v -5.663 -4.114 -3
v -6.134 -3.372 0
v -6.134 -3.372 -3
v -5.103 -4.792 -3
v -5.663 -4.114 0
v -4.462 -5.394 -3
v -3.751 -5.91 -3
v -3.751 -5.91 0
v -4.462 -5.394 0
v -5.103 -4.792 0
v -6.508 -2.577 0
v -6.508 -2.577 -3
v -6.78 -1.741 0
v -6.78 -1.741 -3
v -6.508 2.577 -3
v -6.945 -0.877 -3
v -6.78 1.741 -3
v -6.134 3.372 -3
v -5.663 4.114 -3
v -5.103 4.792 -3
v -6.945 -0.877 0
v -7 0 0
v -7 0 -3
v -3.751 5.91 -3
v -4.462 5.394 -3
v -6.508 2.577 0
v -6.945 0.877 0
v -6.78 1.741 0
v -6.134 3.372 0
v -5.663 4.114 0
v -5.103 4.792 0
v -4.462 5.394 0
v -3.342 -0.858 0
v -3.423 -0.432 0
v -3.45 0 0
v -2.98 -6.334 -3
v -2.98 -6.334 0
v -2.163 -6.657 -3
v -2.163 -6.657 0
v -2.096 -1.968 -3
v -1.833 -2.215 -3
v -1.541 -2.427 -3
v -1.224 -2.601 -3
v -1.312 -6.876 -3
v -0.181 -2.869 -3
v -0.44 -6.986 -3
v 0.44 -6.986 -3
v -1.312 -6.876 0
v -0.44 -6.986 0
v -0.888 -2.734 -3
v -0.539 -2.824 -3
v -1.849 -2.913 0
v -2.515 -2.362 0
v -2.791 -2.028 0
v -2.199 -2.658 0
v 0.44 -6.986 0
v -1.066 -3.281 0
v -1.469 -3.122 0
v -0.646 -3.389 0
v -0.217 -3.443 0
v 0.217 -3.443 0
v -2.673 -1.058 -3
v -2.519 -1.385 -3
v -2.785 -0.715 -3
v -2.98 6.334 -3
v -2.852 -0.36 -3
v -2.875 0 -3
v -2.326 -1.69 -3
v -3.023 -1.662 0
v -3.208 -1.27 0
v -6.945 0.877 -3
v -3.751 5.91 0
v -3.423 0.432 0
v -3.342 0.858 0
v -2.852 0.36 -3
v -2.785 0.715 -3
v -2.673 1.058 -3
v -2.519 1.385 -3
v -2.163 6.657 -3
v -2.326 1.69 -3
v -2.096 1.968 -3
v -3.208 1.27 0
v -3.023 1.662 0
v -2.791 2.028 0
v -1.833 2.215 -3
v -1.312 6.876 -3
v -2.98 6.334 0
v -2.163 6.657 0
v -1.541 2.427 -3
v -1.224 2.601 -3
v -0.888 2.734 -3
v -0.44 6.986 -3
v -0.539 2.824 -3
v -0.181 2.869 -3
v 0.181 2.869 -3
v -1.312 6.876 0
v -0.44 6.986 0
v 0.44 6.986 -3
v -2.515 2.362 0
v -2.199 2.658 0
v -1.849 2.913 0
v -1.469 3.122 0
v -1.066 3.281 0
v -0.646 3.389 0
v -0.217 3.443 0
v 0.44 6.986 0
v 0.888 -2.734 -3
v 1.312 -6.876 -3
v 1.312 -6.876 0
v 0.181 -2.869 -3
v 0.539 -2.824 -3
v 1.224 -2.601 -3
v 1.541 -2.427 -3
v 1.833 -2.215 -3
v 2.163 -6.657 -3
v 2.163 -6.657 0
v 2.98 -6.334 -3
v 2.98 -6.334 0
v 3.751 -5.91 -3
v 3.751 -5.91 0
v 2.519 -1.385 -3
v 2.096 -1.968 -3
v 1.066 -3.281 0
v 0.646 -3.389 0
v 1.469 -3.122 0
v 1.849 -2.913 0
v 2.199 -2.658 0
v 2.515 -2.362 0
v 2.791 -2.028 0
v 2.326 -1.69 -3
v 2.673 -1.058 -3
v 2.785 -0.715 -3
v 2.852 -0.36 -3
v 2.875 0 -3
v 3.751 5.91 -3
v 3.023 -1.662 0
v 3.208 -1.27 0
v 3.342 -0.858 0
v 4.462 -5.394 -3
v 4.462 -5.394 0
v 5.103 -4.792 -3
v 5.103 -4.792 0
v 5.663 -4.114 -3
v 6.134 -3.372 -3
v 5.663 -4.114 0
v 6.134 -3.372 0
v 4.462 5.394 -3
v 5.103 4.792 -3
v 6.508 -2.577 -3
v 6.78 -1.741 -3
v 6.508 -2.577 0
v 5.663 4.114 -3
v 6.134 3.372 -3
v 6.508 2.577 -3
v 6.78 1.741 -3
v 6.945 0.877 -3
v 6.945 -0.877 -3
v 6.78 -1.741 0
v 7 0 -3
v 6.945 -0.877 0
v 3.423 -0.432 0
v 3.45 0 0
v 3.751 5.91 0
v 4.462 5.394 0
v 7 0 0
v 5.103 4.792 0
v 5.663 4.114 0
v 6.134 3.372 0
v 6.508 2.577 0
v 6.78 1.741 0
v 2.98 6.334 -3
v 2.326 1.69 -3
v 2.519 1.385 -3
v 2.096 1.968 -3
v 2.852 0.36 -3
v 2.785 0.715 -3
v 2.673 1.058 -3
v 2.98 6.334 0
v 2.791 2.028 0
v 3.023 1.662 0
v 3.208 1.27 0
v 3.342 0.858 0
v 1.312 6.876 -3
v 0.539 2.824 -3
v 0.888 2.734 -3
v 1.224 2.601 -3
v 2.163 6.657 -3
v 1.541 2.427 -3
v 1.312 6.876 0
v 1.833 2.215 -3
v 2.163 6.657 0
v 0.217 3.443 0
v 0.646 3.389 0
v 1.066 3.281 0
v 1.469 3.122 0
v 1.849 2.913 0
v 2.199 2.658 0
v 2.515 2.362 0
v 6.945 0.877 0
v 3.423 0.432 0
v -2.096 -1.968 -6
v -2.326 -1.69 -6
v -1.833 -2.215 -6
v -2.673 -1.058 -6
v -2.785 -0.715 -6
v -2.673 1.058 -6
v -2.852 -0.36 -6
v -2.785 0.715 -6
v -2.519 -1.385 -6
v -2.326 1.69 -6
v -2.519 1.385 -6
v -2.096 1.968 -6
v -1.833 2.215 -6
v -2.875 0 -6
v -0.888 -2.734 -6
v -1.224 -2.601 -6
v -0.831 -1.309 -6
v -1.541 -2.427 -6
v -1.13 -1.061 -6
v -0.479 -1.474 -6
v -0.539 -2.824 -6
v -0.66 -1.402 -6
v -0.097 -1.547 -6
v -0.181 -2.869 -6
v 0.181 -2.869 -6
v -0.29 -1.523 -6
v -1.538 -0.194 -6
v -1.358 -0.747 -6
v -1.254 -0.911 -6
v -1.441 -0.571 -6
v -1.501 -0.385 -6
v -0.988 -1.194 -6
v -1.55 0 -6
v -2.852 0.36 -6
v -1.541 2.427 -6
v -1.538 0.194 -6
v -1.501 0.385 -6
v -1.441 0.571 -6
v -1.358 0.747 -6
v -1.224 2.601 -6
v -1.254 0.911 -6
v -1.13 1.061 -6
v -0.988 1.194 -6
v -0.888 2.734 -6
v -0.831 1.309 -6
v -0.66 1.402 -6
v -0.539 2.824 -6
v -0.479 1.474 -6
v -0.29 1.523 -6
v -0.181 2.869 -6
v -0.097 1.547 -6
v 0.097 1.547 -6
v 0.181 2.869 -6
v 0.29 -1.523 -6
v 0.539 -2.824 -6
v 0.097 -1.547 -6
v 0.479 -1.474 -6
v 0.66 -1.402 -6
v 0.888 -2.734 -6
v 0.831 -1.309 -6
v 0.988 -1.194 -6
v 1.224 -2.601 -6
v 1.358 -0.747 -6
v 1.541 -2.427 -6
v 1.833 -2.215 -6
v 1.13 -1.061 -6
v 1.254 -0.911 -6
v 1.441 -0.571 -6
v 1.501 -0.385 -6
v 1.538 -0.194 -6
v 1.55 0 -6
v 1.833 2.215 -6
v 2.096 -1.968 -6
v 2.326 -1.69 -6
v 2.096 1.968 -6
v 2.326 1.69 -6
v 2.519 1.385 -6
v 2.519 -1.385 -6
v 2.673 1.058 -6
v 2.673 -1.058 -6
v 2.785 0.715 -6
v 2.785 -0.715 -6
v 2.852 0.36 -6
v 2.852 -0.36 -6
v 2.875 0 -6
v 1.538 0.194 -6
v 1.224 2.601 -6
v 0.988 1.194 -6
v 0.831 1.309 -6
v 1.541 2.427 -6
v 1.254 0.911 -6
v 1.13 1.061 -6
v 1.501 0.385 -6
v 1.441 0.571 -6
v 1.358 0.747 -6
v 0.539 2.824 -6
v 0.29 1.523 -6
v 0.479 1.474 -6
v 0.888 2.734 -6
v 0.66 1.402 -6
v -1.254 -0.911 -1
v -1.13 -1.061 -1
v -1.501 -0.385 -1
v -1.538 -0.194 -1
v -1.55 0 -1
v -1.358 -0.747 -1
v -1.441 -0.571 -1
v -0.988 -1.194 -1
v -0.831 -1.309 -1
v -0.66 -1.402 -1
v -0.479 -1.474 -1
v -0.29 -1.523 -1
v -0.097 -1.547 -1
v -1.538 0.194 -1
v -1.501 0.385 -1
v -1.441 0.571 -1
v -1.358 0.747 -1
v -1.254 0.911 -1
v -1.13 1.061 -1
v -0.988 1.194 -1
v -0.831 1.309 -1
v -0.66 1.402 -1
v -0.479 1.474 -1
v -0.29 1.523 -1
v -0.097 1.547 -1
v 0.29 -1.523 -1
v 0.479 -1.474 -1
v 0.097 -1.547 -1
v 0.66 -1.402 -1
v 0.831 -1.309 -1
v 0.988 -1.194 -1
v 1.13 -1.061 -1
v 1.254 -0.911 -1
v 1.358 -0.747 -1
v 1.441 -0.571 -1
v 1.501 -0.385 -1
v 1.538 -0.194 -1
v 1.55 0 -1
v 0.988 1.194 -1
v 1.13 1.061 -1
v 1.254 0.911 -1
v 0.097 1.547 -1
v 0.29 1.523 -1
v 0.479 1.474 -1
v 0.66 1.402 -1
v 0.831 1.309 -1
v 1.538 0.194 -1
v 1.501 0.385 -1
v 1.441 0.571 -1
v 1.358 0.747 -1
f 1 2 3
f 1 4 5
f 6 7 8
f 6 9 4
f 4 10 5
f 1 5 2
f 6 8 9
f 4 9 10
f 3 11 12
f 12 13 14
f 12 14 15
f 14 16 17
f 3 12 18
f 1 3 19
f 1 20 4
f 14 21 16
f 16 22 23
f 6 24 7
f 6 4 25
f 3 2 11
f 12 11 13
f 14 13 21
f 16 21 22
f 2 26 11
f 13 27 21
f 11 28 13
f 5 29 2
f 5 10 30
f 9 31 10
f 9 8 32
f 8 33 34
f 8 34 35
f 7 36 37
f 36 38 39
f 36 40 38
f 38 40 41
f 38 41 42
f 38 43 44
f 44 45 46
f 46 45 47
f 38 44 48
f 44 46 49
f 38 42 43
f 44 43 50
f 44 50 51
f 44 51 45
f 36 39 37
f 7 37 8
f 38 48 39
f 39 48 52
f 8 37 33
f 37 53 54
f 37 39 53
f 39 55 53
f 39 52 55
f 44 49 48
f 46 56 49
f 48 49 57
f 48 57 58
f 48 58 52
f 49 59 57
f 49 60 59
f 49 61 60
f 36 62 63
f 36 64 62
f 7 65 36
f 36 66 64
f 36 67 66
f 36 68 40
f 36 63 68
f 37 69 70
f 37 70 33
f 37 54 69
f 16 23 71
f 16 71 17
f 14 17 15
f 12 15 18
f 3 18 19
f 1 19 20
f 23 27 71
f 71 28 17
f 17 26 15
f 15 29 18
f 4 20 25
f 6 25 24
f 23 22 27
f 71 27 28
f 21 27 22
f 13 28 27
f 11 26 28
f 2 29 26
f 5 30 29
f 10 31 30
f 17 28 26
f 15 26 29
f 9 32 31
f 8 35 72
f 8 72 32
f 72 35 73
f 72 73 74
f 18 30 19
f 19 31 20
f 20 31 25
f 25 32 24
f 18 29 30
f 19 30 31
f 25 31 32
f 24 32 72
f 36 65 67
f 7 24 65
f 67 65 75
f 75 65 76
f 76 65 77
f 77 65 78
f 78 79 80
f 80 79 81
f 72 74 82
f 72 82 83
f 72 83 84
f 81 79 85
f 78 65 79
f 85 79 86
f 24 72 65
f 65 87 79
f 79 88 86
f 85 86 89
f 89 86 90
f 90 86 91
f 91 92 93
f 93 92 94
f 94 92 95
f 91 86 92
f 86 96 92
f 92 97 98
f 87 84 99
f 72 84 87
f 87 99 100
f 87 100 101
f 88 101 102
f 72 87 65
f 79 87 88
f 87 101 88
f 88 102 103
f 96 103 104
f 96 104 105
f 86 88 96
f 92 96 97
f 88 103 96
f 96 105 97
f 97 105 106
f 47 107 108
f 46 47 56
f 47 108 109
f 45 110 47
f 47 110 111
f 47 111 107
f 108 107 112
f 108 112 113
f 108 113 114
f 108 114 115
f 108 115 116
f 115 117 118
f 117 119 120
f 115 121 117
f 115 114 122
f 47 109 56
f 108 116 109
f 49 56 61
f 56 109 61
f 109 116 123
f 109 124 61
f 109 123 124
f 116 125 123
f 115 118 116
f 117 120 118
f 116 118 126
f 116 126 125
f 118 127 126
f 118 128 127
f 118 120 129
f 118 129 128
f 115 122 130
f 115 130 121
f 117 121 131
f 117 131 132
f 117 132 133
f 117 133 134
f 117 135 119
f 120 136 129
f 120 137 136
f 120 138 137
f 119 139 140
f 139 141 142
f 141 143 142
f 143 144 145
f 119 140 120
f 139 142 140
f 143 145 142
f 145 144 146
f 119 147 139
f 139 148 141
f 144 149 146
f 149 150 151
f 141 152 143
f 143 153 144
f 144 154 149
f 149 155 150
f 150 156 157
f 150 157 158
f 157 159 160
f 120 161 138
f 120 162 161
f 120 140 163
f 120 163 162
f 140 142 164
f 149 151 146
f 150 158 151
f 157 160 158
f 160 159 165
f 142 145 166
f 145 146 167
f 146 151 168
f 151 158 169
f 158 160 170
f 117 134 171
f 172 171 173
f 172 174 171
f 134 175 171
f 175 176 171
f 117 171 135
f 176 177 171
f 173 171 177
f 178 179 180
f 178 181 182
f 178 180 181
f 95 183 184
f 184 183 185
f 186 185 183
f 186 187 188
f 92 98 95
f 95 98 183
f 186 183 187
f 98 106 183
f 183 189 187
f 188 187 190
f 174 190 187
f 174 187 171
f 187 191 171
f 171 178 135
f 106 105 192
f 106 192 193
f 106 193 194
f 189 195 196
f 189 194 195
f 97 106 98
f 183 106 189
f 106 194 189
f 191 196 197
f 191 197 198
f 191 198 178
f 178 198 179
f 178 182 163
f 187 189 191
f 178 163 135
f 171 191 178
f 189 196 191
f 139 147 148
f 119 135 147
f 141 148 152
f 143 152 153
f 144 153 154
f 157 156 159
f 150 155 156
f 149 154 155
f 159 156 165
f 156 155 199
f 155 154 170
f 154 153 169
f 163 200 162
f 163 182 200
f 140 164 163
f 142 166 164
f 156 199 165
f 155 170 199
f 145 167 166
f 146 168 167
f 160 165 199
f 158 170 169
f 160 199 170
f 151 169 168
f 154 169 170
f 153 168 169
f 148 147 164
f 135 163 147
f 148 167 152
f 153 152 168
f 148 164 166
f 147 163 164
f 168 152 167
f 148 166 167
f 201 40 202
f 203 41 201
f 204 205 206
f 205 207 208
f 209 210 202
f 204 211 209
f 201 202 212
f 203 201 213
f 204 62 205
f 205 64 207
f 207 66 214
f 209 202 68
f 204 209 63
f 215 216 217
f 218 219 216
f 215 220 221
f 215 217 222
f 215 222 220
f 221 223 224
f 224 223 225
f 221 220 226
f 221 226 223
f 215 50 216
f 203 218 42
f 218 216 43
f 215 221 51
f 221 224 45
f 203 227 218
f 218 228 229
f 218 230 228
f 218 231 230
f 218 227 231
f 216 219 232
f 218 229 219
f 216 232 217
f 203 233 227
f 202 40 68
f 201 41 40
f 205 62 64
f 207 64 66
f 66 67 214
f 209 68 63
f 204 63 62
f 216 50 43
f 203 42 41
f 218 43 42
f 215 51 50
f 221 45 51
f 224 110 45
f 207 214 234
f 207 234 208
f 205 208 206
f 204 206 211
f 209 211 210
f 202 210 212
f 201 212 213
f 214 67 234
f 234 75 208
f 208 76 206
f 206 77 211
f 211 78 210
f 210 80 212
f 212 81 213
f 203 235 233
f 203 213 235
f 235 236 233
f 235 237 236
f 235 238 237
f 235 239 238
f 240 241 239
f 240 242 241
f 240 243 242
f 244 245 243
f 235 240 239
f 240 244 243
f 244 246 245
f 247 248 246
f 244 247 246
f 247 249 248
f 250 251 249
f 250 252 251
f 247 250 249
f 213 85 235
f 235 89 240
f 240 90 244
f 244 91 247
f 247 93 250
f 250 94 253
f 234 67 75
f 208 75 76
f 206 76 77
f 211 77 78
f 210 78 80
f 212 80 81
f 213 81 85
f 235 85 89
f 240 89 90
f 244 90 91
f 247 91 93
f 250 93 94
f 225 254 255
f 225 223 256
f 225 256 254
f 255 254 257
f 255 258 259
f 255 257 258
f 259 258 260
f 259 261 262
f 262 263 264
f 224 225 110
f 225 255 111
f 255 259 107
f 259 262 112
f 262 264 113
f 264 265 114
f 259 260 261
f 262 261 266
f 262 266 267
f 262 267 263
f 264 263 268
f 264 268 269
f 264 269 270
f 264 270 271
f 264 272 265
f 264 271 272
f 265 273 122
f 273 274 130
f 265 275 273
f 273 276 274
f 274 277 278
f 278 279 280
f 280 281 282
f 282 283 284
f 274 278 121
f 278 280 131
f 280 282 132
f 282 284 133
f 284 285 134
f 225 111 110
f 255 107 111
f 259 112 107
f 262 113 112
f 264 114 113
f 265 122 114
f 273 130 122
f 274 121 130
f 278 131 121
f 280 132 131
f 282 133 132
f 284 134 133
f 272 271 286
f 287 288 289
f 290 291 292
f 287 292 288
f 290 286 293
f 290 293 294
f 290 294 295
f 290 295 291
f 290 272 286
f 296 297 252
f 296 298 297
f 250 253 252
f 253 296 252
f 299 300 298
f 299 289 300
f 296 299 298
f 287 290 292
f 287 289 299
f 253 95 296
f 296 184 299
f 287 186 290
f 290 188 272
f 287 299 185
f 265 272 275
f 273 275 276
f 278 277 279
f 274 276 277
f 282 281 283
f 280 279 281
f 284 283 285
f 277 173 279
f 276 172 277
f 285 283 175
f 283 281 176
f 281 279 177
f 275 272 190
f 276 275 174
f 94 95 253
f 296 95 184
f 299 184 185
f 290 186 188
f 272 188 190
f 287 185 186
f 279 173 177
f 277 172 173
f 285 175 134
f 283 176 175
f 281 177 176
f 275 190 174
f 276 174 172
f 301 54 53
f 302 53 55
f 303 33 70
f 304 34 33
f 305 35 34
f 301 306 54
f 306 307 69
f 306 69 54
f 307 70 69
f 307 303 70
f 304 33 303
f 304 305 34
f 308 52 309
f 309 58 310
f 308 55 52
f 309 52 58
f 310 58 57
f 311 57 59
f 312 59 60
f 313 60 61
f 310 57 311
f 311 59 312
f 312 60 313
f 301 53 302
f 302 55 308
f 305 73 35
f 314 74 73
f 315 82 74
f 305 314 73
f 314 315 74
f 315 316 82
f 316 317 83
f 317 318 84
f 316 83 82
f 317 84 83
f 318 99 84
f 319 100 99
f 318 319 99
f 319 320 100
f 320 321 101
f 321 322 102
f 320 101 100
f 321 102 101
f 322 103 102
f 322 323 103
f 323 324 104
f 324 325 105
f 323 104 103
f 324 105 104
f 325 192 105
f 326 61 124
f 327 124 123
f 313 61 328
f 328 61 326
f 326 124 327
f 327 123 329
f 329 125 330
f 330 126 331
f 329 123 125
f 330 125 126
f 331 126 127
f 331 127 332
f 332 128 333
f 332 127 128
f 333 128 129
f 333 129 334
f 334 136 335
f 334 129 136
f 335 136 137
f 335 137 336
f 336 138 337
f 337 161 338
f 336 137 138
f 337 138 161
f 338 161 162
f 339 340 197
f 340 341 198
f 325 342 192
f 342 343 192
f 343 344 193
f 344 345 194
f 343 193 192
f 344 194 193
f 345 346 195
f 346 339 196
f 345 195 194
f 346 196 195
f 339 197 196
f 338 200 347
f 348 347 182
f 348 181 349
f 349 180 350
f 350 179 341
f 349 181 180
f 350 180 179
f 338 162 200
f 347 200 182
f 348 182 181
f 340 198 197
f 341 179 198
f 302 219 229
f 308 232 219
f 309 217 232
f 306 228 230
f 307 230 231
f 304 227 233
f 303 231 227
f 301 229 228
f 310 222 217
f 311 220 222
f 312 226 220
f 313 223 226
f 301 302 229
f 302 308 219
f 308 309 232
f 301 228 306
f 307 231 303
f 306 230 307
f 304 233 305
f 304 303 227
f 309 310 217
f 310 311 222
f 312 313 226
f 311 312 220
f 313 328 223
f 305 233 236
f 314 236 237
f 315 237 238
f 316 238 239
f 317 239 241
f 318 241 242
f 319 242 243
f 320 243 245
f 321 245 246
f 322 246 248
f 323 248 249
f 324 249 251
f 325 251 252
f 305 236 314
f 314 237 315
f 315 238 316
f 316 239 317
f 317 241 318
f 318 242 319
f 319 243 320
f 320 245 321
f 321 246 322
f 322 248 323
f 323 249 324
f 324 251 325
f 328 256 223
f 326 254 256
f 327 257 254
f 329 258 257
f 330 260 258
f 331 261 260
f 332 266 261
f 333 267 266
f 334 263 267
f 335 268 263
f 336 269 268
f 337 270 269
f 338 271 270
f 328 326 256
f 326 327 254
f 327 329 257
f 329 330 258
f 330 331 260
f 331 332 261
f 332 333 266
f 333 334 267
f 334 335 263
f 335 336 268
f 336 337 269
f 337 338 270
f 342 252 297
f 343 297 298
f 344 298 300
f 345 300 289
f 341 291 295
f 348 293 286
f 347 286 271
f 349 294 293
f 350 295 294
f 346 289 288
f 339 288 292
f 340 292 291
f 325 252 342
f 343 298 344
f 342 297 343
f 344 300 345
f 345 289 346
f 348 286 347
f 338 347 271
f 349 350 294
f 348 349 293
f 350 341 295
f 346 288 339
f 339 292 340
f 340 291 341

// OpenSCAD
$fn = 50;

difference() {
	union() {
		translate(v = [0, 0, -3.0]) {
			cylinder(h = 3, r = 7.0);
		}
		#translate(v = [0, 0, -6.0]) {
			cylinder(h = 6, r = 2.875);
		}
	}
	union() {
		translate(v = [0, 0, 0]) {
			rotate(a = [0, 0, 0]) {
				difference() {
					union() {
						translate(v = [0, 0, -6.0]) {
							cylinder(h = 6, r = 1.25);
						}
						translate(v = [0, 0, -1.0]) {
							cylinder(h = 1.0, r1 = 1.55, r2 = 3.45);
						}
						translate(v = [0, 0, -6.0]) {
							cylinder(h = 6, r = 1.55);
						}
						translate(v = [0, 0, -6.0]) {
							cylinder(h = 6, r = 1.25);
						}
					}
					union();
				}
			}
		}
	}
}
